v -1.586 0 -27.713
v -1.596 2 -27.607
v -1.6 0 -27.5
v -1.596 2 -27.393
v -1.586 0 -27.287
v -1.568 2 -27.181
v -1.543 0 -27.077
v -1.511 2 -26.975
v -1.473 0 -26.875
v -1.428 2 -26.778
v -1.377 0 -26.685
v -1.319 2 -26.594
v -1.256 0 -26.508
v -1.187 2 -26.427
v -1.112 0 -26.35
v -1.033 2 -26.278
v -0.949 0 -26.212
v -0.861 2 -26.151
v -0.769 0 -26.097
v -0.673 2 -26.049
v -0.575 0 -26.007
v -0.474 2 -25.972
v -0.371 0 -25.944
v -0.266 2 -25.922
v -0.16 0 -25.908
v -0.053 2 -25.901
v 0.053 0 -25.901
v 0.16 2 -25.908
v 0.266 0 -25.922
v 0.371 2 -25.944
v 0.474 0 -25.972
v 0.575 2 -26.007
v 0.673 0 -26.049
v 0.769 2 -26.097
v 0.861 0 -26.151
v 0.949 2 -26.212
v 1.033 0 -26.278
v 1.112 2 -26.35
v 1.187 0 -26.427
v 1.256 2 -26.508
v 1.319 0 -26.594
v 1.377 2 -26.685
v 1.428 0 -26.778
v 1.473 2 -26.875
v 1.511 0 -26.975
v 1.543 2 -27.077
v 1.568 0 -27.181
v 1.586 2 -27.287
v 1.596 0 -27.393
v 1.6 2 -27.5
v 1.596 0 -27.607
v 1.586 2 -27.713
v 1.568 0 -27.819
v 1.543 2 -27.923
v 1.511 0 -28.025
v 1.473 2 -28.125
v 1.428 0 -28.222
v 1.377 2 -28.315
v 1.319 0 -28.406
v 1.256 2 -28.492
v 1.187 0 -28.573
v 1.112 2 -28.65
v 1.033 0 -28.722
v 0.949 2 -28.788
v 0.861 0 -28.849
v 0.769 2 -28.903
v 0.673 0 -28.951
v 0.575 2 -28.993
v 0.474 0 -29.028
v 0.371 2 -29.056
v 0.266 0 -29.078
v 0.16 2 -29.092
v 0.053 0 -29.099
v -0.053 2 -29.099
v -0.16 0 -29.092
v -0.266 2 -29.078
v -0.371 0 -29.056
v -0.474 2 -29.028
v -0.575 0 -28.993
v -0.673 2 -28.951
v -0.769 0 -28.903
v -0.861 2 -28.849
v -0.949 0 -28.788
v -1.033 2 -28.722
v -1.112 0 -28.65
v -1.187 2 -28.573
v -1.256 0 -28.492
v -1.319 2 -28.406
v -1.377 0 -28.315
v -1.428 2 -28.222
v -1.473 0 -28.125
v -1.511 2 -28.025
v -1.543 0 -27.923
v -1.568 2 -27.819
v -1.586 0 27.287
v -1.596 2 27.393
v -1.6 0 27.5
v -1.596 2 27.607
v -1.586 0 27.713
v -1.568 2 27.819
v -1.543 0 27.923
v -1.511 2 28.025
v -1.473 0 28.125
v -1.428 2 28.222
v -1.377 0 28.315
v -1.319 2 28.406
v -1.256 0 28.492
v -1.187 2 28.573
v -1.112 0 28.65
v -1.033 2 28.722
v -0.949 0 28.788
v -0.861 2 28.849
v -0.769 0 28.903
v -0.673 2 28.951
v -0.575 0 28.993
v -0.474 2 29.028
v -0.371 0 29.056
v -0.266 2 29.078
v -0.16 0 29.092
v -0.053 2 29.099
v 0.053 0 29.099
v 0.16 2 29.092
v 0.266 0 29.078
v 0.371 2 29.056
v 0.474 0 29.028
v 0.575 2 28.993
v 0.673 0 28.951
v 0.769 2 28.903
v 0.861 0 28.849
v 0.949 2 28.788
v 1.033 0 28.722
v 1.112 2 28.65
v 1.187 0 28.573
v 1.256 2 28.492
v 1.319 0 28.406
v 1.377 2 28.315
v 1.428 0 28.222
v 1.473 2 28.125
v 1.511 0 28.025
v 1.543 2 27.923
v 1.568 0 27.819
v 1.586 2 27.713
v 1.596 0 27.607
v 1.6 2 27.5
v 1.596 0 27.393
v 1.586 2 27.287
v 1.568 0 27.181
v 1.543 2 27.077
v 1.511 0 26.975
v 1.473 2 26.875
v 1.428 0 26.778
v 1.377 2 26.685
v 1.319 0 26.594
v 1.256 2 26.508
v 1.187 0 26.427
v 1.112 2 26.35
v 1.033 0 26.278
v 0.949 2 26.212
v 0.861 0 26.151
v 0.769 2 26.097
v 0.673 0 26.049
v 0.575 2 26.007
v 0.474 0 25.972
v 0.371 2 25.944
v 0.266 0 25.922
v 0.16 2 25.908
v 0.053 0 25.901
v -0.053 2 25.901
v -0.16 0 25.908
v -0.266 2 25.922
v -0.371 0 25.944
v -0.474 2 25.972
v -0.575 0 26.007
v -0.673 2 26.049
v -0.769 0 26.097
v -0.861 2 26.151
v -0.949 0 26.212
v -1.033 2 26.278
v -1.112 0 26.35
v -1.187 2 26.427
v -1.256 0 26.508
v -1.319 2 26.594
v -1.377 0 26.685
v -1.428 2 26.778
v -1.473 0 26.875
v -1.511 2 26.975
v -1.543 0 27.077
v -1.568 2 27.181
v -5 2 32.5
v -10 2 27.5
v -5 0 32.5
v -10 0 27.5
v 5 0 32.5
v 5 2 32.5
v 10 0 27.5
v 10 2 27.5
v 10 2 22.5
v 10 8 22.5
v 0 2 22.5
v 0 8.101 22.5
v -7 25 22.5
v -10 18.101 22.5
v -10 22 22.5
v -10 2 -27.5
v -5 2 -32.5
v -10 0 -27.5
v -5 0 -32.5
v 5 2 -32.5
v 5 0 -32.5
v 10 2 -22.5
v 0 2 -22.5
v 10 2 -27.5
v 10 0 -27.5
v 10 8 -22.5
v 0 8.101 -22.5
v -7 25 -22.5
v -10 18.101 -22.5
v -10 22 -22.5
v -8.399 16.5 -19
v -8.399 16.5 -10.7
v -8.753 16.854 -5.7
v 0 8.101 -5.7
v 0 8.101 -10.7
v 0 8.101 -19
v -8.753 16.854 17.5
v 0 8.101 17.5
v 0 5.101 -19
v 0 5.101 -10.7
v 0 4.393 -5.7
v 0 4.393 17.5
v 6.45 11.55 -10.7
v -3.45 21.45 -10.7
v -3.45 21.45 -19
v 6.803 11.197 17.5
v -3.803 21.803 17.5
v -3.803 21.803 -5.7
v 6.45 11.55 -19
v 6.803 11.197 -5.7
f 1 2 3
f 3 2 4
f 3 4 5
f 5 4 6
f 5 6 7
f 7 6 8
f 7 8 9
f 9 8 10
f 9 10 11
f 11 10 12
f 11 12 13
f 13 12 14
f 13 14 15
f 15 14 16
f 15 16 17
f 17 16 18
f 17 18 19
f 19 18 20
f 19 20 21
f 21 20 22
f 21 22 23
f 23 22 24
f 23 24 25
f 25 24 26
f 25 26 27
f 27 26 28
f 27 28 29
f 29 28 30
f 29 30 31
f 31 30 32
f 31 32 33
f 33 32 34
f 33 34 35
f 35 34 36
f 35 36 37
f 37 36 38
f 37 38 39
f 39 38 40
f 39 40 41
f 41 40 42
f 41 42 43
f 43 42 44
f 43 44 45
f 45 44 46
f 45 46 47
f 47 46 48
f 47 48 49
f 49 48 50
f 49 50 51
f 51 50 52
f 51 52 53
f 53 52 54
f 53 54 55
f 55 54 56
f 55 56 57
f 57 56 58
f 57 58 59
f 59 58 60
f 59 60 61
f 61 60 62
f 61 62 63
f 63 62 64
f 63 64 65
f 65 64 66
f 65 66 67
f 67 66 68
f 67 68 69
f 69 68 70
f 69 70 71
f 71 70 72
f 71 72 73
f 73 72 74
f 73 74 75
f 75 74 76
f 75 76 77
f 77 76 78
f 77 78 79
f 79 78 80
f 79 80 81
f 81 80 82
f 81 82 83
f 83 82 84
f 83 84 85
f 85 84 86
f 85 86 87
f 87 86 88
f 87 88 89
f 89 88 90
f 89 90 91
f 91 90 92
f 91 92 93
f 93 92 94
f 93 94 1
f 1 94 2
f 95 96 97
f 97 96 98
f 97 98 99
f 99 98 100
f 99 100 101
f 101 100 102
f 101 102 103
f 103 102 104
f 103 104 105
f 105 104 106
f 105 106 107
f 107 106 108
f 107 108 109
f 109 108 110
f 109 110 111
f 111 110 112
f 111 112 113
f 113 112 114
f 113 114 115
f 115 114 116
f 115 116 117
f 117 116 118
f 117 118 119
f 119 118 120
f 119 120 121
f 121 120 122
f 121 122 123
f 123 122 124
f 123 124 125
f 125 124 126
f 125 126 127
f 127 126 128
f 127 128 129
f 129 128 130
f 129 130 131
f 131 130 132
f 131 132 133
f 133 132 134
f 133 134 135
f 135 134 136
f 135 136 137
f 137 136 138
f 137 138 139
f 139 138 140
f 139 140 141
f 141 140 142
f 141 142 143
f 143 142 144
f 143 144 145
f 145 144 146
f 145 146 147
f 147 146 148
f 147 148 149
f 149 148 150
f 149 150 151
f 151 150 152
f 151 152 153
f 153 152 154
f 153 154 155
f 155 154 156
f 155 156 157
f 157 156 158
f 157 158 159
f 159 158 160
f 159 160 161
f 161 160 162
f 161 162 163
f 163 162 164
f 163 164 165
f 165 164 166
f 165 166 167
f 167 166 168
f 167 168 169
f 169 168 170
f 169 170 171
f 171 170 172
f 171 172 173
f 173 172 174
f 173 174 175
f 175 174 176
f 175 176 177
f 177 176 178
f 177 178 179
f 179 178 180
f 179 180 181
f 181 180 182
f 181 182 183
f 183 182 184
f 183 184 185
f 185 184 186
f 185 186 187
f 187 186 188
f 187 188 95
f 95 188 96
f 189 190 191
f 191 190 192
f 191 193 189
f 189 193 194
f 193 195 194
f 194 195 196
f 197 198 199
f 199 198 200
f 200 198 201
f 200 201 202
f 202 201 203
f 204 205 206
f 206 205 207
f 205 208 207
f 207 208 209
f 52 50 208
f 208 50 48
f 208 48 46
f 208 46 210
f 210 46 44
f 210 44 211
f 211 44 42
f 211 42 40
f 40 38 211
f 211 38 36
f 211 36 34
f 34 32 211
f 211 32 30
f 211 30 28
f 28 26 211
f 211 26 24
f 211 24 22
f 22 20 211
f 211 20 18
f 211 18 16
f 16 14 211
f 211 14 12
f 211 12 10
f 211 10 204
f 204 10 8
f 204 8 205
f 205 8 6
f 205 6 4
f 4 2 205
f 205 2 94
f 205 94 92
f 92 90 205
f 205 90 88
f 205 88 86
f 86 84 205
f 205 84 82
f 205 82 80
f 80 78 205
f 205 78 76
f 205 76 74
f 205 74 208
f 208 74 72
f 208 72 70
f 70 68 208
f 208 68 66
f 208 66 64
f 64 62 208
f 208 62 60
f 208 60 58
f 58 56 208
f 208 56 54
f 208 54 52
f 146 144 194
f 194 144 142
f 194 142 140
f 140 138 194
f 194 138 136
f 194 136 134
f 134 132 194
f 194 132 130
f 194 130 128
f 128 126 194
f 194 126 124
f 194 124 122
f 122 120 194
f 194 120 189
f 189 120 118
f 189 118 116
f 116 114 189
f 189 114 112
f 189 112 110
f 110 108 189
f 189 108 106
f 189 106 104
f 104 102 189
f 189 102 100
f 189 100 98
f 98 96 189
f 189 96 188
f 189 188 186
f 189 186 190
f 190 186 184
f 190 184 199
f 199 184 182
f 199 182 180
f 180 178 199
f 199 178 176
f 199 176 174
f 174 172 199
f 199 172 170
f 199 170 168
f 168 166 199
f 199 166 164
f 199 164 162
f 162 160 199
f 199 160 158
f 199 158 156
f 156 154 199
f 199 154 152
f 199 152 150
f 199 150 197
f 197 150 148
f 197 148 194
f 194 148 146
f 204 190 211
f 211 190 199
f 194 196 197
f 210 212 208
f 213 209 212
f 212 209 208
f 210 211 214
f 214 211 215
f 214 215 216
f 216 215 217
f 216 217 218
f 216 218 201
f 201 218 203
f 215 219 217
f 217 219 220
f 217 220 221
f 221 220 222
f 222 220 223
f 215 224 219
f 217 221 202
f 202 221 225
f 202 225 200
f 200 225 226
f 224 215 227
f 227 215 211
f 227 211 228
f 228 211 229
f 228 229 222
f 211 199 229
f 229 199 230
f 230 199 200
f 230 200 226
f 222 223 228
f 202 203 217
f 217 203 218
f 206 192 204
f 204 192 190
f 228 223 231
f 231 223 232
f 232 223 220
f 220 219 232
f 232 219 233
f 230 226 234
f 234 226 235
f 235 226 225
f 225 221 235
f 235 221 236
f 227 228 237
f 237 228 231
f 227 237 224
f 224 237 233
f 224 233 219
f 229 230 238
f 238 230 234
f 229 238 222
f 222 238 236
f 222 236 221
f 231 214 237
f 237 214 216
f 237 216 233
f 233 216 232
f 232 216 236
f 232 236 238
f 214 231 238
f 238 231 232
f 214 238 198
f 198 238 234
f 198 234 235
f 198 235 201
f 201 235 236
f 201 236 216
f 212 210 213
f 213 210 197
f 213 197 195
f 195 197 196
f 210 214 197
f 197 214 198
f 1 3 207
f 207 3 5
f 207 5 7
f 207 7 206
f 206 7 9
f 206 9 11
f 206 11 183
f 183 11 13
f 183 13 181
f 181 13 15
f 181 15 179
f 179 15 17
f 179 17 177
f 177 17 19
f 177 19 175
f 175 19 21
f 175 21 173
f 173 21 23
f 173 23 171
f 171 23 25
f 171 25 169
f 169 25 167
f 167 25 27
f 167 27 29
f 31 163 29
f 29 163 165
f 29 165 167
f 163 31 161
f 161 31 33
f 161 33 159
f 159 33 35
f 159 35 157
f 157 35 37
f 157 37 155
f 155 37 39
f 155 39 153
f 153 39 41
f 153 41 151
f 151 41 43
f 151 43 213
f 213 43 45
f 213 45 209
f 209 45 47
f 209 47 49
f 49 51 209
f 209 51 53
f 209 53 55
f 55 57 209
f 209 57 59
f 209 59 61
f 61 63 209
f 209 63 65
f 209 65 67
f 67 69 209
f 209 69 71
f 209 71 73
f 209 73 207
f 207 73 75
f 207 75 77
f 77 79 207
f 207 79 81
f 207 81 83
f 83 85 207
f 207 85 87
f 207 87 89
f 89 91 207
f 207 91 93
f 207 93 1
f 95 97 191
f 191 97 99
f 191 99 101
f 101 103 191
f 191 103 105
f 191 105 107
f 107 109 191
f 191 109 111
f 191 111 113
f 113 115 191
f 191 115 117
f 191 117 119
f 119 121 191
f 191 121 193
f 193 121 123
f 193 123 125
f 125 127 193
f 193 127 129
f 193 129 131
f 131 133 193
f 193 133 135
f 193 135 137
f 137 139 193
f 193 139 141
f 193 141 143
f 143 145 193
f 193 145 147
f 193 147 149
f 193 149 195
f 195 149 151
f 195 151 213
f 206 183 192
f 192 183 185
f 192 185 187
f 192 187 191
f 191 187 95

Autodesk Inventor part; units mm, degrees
ref_plane "YZ Plane" through (0, 0, 0) normal (1, 0, 0) x (0, 1, 0)
ref_plane "XZ Plane" through (0, 0, 0) normal (0, 1, 0) x (-1, 0, 0)
ref_plane "XY Plane" through (0, 0, 0) normal (0, 0, 1) x (1, 0, 0)
sketch "Эскиз1" plane through (0, 0, 0) normal (0, 0, 1) x (1, 0, 0)
  line L0 (-10, 0) -> (10, 0)
  line L1 (-10, 25) -> (-10, 0)
  line L2 (-10, 25) -> (-7, 25)
  line L3 (-7, 25) -> (10, 8)
  line L4 (10, 8) -> (10, 0)
  point P0 (0, 0)
  point P1 (0, 0)
  dimension "d4" = 20
  dimension "d5" = 25
  dimension "d6" = 3
  dimension "d7" = 135
extrude "Выдавливание1" add sketch "Эскиз1" along normal mid plane 45
sketch "Эскиз3" plane through (-7, 25, -22.5) normal (0.7071, 0.7071, 0) x (-0.7071, 0.7071, 0)
  line L0 (-4.5208, 40) -> (-19.5208, 40)
  line L1 (-19.5208, 40) -> (-19.5208, 16.8)
  line L2 (-19.5208, 16.8) -> (-4.5208, 16.8)
  line L3 (-4.5208, 16.8) -> (-4.5208, 40)
  line L4 (-24.0416, 45) -> (0, 45) projected
  line L5 (-5.0208, 11.8) -> (-19.0208, 11.8)
  line L6 (-19.0208, 11.8) -> (-19.0208, 3.5)
  line L7 (-19.0208, 3.5) -> (-5.0208, 3.5)
  line L8 (-5.0208, 3.5) -> (-5.0208, 11.8)
  line L9 (0, 0) -> (-24.0416, 0) projected
  point P0 (-22.6274, 22.5)
  point P1 (-12.0208, 11.8)
  point P2 (-12.0208, 16.8)
  point P3 (-12.0208, 3.5)
  point P4 (-12.0208, 0)
  dimension "d8" = 23.2
  dimension "d9" = 15
  dimension "d10" = 5
  dimension "d11" = 14
  dimension "d12" = 8.3
  dimension "d13" = 5
extrude "Выдавливание2" cut sketch "Эскиз3" against normal blind 10
sketch "Эскиз7" plane through (0, 0, 22.5) normal (0, 0, 1) x (1, 0, 0)
  line L0 (10, 0) -> (-10, 0) projected
  line L1 (0, 8.1005) -> (-10, 18.1005)
  line L2 (10, 8) -> (-7, 25) projected
  line L3 (6.8033, 11.1967) -> (-3.8033, 21.8033) projected
  line L4 (10, 8) -> (10, 0) projected
  line L5 (-7, 25) -> (10, 8)
  line L6 (-7, 25) -> (10, 8) projected
  line L7 (0, 8.1005) -> (0, 2)
  line L8 (0, 2) -> (-10, 2)
  line L9 (-10, 2) -> (-10, 0)
  line L10 (-10, 0) -> (10, 0)
  line L11 (10, 8) -> (10, 0)
  line L12 (-10, 18.1005) -> (-10, 22)
  line L13 (-10, 22) -> (-7, 25)
  line L14 (-10, 25) -> (-10, 0) projected
  point P0 (0, 0)
  point P1 (1.5, 16.5)
  dimension "d22" = 7
  dimension "d24" = 2
  dimension "d25" = 10
  dimension "d26" = 135
extrude "Выдавливание4" cut sketch "Эскиз7" against normal through all contours L0 L9 L8 L7 L1 L12 L13 L2 L4 keep common part
sketch "Эскиз8" plane through (0, 0, -22.5) normal (0, 0, -1) x (-1, 0, 0)
  line L0 (10, 2) -> (0, 2) projected
  line L1 (-10, 0) -> (10, 0) projected
  line L2 (10, 2) -> (-10, 2)
  line L3 (-10, 2) -> (-10, 0)
  line L4 (-10, 0) -> (10, 0)
  line L5 (10, 0) -> (10, 2)
  point P0 (0, 0)
extrude "Выдавливание5" add sketch "Эскиз8" along normal blind 10
chamfer "Фаска1" distance 5 angle 45 2 edges at (10, 1, -32.5) (-10, 1, -32.5)
mirror "Зеркальное отражение1" about plane through (0, 0, 0) normal (0, 0, 1) of "Выдавливание5", "Фаска1"
sketch "Эскиз9" plane through (0, 2, 22.5) normal (0, 1, 0) x (1, 0, 0)
  line L0 (10, 0) -> (-7, 0) projected
  line L1 (0, 0) -> (0, 45) projected
  point P0 (0, 22.5)
  point P1 (0, 50)
  point P2 (0, -5)
  point P3 (0, 22.5)
  dimension "d41" = 55
  dimension "d42" = 5
hole "Отверстие1" at (0, 2, -27.5) at (0, 2, 27.5) direction (0, -1, 0) diameter 3.2 end through all
properties part number "Indicator"
